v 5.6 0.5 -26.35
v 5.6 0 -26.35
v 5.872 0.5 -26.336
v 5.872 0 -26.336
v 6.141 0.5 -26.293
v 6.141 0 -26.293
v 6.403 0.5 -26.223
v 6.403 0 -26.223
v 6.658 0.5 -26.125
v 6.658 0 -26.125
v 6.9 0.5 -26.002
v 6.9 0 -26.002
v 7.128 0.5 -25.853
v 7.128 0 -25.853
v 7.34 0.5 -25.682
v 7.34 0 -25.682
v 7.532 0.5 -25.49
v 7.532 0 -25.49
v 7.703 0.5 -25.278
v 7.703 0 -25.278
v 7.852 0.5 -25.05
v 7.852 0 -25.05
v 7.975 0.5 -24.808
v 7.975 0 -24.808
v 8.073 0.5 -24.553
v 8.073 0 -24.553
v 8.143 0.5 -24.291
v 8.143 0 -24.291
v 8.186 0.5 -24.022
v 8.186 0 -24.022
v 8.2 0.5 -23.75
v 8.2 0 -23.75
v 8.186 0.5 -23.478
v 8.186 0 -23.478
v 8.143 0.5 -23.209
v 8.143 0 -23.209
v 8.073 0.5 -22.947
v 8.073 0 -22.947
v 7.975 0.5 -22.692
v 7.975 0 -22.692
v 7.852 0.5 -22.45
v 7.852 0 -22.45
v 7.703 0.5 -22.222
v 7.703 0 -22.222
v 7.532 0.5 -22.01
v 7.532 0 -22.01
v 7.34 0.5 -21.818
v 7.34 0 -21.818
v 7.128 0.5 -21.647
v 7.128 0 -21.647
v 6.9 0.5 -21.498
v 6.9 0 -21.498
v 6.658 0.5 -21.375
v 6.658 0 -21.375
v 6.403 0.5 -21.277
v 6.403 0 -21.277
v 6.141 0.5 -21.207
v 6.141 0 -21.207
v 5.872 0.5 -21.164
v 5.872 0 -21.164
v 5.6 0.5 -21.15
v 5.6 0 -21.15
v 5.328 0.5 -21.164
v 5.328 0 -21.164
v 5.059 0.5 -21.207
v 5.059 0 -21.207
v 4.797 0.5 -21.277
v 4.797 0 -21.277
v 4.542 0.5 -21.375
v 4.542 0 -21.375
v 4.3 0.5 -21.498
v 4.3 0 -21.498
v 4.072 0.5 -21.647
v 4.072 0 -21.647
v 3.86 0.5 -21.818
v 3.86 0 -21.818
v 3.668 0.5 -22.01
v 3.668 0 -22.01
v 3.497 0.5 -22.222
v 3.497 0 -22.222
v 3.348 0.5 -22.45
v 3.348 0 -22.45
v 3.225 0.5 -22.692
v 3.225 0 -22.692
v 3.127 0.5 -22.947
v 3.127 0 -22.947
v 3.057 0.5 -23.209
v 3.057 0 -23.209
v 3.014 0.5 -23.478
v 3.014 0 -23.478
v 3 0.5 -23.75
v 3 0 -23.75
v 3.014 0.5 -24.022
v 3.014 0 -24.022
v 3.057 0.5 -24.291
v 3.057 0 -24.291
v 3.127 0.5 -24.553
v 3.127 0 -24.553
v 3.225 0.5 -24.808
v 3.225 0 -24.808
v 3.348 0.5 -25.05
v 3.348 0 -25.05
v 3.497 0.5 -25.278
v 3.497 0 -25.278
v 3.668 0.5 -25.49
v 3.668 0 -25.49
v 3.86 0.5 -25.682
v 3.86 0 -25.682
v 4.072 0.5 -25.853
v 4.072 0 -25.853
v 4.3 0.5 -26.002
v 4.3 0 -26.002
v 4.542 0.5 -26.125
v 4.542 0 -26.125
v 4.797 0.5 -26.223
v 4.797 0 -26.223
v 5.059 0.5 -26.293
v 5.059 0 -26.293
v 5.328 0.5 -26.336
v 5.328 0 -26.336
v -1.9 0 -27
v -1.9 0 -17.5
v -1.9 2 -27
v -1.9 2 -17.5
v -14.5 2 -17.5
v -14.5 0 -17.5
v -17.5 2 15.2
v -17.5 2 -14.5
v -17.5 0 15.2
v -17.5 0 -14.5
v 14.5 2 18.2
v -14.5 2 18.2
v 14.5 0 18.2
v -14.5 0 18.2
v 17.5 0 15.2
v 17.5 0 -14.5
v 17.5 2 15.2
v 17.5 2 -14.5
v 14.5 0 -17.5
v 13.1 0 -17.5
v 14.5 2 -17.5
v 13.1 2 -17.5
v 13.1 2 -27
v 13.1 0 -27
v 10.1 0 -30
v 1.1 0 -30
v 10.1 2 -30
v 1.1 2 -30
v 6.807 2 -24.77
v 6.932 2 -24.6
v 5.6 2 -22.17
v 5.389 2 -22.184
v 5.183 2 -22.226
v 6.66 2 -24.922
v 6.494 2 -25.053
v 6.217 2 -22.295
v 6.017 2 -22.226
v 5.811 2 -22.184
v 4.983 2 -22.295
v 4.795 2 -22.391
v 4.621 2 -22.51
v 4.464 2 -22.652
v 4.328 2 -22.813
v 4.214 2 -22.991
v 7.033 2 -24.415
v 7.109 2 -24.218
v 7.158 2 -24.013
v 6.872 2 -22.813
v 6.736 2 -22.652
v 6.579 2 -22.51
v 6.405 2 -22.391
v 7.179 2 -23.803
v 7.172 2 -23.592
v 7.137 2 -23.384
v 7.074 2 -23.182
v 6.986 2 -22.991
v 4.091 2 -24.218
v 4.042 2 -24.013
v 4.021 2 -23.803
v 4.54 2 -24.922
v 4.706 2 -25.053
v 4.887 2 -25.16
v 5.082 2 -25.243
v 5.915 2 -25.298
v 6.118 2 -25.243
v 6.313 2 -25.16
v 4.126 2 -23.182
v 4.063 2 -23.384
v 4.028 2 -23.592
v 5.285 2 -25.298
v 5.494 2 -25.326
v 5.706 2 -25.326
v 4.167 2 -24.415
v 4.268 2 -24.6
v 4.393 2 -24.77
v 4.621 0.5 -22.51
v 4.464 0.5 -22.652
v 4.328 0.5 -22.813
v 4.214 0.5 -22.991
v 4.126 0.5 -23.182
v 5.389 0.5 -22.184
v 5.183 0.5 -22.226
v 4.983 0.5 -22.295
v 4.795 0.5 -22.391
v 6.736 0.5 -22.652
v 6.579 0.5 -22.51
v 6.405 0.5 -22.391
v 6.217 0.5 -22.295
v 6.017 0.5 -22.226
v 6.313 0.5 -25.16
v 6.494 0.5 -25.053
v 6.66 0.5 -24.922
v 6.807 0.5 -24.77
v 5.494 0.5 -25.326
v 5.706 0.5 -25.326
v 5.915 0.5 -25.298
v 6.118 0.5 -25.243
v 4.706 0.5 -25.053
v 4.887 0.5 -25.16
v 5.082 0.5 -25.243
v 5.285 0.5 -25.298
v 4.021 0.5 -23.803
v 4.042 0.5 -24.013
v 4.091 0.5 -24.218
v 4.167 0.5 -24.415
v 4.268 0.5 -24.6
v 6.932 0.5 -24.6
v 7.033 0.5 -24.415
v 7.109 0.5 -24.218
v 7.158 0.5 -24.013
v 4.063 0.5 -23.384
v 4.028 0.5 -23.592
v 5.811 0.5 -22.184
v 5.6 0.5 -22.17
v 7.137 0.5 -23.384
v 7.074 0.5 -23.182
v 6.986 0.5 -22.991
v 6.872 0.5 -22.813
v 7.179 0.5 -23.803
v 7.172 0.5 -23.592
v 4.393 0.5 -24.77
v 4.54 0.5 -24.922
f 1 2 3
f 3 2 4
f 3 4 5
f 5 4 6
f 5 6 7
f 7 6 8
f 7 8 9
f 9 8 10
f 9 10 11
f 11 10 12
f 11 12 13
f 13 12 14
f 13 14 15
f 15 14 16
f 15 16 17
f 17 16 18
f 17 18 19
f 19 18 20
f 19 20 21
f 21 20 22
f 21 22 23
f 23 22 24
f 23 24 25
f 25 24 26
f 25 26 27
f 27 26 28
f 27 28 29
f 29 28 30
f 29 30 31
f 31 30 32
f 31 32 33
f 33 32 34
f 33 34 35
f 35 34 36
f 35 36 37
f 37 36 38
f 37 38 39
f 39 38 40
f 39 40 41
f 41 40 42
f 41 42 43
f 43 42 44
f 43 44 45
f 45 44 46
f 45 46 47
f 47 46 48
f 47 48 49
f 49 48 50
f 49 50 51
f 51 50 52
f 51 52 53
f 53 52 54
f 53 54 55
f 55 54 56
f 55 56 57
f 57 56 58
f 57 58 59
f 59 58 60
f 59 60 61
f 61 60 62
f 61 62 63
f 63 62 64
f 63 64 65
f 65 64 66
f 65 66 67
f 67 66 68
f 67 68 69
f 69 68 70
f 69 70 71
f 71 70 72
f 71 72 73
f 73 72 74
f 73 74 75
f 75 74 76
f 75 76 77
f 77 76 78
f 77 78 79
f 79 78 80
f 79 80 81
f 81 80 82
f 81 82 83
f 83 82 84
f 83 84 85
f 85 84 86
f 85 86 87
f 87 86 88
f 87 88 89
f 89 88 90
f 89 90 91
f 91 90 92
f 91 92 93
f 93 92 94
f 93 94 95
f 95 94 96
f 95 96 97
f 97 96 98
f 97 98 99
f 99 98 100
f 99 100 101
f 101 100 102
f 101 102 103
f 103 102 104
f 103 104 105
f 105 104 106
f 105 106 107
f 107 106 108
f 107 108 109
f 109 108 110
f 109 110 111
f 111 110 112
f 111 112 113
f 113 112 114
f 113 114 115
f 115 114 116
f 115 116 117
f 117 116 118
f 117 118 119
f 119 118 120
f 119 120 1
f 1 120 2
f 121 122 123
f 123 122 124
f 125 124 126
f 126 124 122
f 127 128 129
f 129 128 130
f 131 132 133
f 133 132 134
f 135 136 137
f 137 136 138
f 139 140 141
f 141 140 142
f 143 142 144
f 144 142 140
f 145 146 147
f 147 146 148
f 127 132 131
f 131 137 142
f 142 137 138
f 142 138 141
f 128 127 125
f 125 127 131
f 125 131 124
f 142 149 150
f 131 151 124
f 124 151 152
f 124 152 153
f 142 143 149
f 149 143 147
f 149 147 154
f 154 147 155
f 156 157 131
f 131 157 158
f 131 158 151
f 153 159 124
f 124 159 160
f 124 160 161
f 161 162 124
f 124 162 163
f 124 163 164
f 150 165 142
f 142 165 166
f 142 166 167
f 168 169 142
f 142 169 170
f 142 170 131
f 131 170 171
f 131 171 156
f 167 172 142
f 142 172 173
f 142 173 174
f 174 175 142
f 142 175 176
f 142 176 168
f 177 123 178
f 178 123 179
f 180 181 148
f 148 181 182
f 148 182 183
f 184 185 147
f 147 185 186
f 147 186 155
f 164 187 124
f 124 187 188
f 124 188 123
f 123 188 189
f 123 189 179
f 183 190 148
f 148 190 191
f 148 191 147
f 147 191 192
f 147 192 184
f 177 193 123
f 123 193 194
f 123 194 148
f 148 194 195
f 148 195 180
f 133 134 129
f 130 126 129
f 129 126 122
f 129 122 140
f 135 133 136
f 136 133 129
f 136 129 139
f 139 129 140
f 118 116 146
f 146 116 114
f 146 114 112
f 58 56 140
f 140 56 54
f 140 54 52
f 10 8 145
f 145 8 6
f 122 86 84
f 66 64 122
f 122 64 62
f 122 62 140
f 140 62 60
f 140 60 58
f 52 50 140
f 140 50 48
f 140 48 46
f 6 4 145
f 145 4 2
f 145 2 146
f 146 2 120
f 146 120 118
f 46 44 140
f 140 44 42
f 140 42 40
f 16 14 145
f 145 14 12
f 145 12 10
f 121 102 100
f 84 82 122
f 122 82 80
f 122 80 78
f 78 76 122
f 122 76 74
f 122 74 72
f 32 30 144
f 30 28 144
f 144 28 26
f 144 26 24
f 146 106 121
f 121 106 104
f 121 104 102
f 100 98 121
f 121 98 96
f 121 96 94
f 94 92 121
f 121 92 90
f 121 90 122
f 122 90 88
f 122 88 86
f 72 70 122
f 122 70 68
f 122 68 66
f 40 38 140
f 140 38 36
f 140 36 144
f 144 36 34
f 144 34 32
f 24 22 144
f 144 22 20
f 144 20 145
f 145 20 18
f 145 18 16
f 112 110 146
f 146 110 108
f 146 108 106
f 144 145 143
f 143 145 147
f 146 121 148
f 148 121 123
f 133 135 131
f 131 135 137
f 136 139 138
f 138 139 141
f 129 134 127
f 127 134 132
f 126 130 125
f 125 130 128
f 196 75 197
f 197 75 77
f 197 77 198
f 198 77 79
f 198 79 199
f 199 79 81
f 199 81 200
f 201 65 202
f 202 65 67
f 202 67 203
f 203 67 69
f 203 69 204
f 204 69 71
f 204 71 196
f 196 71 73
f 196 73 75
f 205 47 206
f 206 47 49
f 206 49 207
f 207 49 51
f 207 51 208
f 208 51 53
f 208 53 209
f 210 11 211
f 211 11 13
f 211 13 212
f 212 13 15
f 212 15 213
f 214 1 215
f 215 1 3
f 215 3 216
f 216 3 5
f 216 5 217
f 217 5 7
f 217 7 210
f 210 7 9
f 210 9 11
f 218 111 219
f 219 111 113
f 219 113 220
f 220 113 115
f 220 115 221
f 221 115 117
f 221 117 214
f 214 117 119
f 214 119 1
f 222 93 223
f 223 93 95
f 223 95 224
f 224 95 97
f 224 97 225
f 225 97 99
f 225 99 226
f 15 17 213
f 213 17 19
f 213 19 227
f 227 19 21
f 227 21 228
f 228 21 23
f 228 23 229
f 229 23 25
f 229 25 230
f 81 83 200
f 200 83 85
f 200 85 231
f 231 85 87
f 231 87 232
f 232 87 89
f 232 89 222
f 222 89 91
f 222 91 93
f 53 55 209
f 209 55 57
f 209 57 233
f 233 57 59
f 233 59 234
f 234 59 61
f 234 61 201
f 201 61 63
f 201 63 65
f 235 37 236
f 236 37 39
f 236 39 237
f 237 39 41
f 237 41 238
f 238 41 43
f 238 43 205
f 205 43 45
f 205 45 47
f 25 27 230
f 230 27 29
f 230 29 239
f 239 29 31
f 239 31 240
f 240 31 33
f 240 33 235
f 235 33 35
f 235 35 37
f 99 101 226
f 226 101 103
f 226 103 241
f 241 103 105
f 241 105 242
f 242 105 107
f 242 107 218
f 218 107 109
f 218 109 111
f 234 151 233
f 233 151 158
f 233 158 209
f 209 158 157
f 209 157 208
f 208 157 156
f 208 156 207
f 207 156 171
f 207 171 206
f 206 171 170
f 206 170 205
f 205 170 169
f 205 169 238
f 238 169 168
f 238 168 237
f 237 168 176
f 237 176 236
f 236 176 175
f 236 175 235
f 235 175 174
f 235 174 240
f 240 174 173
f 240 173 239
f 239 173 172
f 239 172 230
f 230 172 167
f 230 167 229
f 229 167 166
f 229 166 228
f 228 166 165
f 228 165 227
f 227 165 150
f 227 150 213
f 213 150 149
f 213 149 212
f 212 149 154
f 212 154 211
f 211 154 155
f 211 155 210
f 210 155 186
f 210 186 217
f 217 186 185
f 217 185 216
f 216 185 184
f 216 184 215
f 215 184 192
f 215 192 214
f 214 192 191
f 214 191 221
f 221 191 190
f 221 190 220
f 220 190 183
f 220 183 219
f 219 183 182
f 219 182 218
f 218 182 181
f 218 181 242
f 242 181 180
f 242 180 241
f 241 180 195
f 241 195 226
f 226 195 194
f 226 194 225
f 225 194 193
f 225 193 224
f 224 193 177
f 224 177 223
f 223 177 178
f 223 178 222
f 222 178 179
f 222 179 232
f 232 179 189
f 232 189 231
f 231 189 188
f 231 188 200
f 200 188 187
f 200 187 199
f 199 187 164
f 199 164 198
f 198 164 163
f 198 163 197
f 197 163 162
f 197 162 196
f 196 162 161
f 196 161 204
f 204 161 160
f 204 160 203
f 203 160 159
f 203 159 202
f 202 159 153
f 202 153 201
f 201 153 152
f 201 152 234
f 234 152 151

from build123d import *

# Parameters (mm, degrees)
SKETCH1_W           = 35
SKETCH1_H           = 0.7
SKETCH1_H_2         = 35
BOSS_EXTRUDE1_DEPTH = 2
CHAMFER1_SIZE       = 3
SKETCH4_R           = 2.6
SKETCH4_R_2         = 1.58
BOSS_EXTRUDE2_DEPTH = 1.5


with BuildPart() as part:
    # Sketch1 → Boss-Extrude1 (new body)
    with BuildSketch(Plane(origin=(0, 0, 0), x_dir=(1, 0, 0), z_dir=(0, 1, 0))):
        with BuildLine():
            Line((7.5, 17.5), (13.1, 17.5))
            Line((13.1, 17.5), (13.1, 30))
            Line((13.1, 30), (7.5, 30))
            Line((7.5, 30), (7.5, 25.524823935))
            ThreePointArc((7.5, 25.524823935), (8.018677324, 24.703939201), (8.2, 23.75))
            ThreePointArc((8.2, 23.75), (8.018677324, 22.796060799), (7.5, 21.975176065))
            Line((7.5, 21.975176065), (7.5, 17.5))
        make_face()
        with BuildLine():
            Line((-1.9, 30), (-1.9, 17.5))
            Line((-1.9, 17.5), (7.5, 17.5))
            Line((7.5, 17.5), (7.5, 21.975176065))
            ThreePointArc((7.5, 21.975176065), (3, 23.75), (7.5, 25.524823935))
            Line((7.5, 25.524823935), (7.5, 30))
            Line((7.5, 30), (-1.9, 30))
        make_face()
        with Locations((0, -17.85)):
            Rectangle(SKETCH1_W, SKETCH1_H)
        Rectangle(SKETCH1_W, SKETCH1_H_2)
    extrude(amount=BOSS_EXTRUDE1_DEPTH)

    # Chamfer1
    chamfer1_edges = [part.edges().sort_by_distance(p)[0] for p in [
        (-1.9, 1, -30),
        (13.1, 1, -30),
        (17.5, 1, -17.5),
        (17.5, 1, 18.2),
        (-17.5, 1, 18.2),
        (-17.5, 1, -17.5),
    ]]
    chamfer(chamfer1_edges, length=CHAMFER1_SIZE)

    # Sketch4 → Boss-Extrude2 (add)
    with BuildSketch(Plane(origin=(0, 2, 0), x_dir=(1, 0, 0), z_dir=(0, 1, 0))):
        with Locations((5.6, 23.75)):
            Circle(SKETCH4_R)
        with Locations((5.6, 23.75)):
            Circle(SKETCH4_R_2, mode=Mode.SUBTRACT)
    extrude(amount=-BOSS_EXTRUDE2_DEPTH)


solid = part.part
